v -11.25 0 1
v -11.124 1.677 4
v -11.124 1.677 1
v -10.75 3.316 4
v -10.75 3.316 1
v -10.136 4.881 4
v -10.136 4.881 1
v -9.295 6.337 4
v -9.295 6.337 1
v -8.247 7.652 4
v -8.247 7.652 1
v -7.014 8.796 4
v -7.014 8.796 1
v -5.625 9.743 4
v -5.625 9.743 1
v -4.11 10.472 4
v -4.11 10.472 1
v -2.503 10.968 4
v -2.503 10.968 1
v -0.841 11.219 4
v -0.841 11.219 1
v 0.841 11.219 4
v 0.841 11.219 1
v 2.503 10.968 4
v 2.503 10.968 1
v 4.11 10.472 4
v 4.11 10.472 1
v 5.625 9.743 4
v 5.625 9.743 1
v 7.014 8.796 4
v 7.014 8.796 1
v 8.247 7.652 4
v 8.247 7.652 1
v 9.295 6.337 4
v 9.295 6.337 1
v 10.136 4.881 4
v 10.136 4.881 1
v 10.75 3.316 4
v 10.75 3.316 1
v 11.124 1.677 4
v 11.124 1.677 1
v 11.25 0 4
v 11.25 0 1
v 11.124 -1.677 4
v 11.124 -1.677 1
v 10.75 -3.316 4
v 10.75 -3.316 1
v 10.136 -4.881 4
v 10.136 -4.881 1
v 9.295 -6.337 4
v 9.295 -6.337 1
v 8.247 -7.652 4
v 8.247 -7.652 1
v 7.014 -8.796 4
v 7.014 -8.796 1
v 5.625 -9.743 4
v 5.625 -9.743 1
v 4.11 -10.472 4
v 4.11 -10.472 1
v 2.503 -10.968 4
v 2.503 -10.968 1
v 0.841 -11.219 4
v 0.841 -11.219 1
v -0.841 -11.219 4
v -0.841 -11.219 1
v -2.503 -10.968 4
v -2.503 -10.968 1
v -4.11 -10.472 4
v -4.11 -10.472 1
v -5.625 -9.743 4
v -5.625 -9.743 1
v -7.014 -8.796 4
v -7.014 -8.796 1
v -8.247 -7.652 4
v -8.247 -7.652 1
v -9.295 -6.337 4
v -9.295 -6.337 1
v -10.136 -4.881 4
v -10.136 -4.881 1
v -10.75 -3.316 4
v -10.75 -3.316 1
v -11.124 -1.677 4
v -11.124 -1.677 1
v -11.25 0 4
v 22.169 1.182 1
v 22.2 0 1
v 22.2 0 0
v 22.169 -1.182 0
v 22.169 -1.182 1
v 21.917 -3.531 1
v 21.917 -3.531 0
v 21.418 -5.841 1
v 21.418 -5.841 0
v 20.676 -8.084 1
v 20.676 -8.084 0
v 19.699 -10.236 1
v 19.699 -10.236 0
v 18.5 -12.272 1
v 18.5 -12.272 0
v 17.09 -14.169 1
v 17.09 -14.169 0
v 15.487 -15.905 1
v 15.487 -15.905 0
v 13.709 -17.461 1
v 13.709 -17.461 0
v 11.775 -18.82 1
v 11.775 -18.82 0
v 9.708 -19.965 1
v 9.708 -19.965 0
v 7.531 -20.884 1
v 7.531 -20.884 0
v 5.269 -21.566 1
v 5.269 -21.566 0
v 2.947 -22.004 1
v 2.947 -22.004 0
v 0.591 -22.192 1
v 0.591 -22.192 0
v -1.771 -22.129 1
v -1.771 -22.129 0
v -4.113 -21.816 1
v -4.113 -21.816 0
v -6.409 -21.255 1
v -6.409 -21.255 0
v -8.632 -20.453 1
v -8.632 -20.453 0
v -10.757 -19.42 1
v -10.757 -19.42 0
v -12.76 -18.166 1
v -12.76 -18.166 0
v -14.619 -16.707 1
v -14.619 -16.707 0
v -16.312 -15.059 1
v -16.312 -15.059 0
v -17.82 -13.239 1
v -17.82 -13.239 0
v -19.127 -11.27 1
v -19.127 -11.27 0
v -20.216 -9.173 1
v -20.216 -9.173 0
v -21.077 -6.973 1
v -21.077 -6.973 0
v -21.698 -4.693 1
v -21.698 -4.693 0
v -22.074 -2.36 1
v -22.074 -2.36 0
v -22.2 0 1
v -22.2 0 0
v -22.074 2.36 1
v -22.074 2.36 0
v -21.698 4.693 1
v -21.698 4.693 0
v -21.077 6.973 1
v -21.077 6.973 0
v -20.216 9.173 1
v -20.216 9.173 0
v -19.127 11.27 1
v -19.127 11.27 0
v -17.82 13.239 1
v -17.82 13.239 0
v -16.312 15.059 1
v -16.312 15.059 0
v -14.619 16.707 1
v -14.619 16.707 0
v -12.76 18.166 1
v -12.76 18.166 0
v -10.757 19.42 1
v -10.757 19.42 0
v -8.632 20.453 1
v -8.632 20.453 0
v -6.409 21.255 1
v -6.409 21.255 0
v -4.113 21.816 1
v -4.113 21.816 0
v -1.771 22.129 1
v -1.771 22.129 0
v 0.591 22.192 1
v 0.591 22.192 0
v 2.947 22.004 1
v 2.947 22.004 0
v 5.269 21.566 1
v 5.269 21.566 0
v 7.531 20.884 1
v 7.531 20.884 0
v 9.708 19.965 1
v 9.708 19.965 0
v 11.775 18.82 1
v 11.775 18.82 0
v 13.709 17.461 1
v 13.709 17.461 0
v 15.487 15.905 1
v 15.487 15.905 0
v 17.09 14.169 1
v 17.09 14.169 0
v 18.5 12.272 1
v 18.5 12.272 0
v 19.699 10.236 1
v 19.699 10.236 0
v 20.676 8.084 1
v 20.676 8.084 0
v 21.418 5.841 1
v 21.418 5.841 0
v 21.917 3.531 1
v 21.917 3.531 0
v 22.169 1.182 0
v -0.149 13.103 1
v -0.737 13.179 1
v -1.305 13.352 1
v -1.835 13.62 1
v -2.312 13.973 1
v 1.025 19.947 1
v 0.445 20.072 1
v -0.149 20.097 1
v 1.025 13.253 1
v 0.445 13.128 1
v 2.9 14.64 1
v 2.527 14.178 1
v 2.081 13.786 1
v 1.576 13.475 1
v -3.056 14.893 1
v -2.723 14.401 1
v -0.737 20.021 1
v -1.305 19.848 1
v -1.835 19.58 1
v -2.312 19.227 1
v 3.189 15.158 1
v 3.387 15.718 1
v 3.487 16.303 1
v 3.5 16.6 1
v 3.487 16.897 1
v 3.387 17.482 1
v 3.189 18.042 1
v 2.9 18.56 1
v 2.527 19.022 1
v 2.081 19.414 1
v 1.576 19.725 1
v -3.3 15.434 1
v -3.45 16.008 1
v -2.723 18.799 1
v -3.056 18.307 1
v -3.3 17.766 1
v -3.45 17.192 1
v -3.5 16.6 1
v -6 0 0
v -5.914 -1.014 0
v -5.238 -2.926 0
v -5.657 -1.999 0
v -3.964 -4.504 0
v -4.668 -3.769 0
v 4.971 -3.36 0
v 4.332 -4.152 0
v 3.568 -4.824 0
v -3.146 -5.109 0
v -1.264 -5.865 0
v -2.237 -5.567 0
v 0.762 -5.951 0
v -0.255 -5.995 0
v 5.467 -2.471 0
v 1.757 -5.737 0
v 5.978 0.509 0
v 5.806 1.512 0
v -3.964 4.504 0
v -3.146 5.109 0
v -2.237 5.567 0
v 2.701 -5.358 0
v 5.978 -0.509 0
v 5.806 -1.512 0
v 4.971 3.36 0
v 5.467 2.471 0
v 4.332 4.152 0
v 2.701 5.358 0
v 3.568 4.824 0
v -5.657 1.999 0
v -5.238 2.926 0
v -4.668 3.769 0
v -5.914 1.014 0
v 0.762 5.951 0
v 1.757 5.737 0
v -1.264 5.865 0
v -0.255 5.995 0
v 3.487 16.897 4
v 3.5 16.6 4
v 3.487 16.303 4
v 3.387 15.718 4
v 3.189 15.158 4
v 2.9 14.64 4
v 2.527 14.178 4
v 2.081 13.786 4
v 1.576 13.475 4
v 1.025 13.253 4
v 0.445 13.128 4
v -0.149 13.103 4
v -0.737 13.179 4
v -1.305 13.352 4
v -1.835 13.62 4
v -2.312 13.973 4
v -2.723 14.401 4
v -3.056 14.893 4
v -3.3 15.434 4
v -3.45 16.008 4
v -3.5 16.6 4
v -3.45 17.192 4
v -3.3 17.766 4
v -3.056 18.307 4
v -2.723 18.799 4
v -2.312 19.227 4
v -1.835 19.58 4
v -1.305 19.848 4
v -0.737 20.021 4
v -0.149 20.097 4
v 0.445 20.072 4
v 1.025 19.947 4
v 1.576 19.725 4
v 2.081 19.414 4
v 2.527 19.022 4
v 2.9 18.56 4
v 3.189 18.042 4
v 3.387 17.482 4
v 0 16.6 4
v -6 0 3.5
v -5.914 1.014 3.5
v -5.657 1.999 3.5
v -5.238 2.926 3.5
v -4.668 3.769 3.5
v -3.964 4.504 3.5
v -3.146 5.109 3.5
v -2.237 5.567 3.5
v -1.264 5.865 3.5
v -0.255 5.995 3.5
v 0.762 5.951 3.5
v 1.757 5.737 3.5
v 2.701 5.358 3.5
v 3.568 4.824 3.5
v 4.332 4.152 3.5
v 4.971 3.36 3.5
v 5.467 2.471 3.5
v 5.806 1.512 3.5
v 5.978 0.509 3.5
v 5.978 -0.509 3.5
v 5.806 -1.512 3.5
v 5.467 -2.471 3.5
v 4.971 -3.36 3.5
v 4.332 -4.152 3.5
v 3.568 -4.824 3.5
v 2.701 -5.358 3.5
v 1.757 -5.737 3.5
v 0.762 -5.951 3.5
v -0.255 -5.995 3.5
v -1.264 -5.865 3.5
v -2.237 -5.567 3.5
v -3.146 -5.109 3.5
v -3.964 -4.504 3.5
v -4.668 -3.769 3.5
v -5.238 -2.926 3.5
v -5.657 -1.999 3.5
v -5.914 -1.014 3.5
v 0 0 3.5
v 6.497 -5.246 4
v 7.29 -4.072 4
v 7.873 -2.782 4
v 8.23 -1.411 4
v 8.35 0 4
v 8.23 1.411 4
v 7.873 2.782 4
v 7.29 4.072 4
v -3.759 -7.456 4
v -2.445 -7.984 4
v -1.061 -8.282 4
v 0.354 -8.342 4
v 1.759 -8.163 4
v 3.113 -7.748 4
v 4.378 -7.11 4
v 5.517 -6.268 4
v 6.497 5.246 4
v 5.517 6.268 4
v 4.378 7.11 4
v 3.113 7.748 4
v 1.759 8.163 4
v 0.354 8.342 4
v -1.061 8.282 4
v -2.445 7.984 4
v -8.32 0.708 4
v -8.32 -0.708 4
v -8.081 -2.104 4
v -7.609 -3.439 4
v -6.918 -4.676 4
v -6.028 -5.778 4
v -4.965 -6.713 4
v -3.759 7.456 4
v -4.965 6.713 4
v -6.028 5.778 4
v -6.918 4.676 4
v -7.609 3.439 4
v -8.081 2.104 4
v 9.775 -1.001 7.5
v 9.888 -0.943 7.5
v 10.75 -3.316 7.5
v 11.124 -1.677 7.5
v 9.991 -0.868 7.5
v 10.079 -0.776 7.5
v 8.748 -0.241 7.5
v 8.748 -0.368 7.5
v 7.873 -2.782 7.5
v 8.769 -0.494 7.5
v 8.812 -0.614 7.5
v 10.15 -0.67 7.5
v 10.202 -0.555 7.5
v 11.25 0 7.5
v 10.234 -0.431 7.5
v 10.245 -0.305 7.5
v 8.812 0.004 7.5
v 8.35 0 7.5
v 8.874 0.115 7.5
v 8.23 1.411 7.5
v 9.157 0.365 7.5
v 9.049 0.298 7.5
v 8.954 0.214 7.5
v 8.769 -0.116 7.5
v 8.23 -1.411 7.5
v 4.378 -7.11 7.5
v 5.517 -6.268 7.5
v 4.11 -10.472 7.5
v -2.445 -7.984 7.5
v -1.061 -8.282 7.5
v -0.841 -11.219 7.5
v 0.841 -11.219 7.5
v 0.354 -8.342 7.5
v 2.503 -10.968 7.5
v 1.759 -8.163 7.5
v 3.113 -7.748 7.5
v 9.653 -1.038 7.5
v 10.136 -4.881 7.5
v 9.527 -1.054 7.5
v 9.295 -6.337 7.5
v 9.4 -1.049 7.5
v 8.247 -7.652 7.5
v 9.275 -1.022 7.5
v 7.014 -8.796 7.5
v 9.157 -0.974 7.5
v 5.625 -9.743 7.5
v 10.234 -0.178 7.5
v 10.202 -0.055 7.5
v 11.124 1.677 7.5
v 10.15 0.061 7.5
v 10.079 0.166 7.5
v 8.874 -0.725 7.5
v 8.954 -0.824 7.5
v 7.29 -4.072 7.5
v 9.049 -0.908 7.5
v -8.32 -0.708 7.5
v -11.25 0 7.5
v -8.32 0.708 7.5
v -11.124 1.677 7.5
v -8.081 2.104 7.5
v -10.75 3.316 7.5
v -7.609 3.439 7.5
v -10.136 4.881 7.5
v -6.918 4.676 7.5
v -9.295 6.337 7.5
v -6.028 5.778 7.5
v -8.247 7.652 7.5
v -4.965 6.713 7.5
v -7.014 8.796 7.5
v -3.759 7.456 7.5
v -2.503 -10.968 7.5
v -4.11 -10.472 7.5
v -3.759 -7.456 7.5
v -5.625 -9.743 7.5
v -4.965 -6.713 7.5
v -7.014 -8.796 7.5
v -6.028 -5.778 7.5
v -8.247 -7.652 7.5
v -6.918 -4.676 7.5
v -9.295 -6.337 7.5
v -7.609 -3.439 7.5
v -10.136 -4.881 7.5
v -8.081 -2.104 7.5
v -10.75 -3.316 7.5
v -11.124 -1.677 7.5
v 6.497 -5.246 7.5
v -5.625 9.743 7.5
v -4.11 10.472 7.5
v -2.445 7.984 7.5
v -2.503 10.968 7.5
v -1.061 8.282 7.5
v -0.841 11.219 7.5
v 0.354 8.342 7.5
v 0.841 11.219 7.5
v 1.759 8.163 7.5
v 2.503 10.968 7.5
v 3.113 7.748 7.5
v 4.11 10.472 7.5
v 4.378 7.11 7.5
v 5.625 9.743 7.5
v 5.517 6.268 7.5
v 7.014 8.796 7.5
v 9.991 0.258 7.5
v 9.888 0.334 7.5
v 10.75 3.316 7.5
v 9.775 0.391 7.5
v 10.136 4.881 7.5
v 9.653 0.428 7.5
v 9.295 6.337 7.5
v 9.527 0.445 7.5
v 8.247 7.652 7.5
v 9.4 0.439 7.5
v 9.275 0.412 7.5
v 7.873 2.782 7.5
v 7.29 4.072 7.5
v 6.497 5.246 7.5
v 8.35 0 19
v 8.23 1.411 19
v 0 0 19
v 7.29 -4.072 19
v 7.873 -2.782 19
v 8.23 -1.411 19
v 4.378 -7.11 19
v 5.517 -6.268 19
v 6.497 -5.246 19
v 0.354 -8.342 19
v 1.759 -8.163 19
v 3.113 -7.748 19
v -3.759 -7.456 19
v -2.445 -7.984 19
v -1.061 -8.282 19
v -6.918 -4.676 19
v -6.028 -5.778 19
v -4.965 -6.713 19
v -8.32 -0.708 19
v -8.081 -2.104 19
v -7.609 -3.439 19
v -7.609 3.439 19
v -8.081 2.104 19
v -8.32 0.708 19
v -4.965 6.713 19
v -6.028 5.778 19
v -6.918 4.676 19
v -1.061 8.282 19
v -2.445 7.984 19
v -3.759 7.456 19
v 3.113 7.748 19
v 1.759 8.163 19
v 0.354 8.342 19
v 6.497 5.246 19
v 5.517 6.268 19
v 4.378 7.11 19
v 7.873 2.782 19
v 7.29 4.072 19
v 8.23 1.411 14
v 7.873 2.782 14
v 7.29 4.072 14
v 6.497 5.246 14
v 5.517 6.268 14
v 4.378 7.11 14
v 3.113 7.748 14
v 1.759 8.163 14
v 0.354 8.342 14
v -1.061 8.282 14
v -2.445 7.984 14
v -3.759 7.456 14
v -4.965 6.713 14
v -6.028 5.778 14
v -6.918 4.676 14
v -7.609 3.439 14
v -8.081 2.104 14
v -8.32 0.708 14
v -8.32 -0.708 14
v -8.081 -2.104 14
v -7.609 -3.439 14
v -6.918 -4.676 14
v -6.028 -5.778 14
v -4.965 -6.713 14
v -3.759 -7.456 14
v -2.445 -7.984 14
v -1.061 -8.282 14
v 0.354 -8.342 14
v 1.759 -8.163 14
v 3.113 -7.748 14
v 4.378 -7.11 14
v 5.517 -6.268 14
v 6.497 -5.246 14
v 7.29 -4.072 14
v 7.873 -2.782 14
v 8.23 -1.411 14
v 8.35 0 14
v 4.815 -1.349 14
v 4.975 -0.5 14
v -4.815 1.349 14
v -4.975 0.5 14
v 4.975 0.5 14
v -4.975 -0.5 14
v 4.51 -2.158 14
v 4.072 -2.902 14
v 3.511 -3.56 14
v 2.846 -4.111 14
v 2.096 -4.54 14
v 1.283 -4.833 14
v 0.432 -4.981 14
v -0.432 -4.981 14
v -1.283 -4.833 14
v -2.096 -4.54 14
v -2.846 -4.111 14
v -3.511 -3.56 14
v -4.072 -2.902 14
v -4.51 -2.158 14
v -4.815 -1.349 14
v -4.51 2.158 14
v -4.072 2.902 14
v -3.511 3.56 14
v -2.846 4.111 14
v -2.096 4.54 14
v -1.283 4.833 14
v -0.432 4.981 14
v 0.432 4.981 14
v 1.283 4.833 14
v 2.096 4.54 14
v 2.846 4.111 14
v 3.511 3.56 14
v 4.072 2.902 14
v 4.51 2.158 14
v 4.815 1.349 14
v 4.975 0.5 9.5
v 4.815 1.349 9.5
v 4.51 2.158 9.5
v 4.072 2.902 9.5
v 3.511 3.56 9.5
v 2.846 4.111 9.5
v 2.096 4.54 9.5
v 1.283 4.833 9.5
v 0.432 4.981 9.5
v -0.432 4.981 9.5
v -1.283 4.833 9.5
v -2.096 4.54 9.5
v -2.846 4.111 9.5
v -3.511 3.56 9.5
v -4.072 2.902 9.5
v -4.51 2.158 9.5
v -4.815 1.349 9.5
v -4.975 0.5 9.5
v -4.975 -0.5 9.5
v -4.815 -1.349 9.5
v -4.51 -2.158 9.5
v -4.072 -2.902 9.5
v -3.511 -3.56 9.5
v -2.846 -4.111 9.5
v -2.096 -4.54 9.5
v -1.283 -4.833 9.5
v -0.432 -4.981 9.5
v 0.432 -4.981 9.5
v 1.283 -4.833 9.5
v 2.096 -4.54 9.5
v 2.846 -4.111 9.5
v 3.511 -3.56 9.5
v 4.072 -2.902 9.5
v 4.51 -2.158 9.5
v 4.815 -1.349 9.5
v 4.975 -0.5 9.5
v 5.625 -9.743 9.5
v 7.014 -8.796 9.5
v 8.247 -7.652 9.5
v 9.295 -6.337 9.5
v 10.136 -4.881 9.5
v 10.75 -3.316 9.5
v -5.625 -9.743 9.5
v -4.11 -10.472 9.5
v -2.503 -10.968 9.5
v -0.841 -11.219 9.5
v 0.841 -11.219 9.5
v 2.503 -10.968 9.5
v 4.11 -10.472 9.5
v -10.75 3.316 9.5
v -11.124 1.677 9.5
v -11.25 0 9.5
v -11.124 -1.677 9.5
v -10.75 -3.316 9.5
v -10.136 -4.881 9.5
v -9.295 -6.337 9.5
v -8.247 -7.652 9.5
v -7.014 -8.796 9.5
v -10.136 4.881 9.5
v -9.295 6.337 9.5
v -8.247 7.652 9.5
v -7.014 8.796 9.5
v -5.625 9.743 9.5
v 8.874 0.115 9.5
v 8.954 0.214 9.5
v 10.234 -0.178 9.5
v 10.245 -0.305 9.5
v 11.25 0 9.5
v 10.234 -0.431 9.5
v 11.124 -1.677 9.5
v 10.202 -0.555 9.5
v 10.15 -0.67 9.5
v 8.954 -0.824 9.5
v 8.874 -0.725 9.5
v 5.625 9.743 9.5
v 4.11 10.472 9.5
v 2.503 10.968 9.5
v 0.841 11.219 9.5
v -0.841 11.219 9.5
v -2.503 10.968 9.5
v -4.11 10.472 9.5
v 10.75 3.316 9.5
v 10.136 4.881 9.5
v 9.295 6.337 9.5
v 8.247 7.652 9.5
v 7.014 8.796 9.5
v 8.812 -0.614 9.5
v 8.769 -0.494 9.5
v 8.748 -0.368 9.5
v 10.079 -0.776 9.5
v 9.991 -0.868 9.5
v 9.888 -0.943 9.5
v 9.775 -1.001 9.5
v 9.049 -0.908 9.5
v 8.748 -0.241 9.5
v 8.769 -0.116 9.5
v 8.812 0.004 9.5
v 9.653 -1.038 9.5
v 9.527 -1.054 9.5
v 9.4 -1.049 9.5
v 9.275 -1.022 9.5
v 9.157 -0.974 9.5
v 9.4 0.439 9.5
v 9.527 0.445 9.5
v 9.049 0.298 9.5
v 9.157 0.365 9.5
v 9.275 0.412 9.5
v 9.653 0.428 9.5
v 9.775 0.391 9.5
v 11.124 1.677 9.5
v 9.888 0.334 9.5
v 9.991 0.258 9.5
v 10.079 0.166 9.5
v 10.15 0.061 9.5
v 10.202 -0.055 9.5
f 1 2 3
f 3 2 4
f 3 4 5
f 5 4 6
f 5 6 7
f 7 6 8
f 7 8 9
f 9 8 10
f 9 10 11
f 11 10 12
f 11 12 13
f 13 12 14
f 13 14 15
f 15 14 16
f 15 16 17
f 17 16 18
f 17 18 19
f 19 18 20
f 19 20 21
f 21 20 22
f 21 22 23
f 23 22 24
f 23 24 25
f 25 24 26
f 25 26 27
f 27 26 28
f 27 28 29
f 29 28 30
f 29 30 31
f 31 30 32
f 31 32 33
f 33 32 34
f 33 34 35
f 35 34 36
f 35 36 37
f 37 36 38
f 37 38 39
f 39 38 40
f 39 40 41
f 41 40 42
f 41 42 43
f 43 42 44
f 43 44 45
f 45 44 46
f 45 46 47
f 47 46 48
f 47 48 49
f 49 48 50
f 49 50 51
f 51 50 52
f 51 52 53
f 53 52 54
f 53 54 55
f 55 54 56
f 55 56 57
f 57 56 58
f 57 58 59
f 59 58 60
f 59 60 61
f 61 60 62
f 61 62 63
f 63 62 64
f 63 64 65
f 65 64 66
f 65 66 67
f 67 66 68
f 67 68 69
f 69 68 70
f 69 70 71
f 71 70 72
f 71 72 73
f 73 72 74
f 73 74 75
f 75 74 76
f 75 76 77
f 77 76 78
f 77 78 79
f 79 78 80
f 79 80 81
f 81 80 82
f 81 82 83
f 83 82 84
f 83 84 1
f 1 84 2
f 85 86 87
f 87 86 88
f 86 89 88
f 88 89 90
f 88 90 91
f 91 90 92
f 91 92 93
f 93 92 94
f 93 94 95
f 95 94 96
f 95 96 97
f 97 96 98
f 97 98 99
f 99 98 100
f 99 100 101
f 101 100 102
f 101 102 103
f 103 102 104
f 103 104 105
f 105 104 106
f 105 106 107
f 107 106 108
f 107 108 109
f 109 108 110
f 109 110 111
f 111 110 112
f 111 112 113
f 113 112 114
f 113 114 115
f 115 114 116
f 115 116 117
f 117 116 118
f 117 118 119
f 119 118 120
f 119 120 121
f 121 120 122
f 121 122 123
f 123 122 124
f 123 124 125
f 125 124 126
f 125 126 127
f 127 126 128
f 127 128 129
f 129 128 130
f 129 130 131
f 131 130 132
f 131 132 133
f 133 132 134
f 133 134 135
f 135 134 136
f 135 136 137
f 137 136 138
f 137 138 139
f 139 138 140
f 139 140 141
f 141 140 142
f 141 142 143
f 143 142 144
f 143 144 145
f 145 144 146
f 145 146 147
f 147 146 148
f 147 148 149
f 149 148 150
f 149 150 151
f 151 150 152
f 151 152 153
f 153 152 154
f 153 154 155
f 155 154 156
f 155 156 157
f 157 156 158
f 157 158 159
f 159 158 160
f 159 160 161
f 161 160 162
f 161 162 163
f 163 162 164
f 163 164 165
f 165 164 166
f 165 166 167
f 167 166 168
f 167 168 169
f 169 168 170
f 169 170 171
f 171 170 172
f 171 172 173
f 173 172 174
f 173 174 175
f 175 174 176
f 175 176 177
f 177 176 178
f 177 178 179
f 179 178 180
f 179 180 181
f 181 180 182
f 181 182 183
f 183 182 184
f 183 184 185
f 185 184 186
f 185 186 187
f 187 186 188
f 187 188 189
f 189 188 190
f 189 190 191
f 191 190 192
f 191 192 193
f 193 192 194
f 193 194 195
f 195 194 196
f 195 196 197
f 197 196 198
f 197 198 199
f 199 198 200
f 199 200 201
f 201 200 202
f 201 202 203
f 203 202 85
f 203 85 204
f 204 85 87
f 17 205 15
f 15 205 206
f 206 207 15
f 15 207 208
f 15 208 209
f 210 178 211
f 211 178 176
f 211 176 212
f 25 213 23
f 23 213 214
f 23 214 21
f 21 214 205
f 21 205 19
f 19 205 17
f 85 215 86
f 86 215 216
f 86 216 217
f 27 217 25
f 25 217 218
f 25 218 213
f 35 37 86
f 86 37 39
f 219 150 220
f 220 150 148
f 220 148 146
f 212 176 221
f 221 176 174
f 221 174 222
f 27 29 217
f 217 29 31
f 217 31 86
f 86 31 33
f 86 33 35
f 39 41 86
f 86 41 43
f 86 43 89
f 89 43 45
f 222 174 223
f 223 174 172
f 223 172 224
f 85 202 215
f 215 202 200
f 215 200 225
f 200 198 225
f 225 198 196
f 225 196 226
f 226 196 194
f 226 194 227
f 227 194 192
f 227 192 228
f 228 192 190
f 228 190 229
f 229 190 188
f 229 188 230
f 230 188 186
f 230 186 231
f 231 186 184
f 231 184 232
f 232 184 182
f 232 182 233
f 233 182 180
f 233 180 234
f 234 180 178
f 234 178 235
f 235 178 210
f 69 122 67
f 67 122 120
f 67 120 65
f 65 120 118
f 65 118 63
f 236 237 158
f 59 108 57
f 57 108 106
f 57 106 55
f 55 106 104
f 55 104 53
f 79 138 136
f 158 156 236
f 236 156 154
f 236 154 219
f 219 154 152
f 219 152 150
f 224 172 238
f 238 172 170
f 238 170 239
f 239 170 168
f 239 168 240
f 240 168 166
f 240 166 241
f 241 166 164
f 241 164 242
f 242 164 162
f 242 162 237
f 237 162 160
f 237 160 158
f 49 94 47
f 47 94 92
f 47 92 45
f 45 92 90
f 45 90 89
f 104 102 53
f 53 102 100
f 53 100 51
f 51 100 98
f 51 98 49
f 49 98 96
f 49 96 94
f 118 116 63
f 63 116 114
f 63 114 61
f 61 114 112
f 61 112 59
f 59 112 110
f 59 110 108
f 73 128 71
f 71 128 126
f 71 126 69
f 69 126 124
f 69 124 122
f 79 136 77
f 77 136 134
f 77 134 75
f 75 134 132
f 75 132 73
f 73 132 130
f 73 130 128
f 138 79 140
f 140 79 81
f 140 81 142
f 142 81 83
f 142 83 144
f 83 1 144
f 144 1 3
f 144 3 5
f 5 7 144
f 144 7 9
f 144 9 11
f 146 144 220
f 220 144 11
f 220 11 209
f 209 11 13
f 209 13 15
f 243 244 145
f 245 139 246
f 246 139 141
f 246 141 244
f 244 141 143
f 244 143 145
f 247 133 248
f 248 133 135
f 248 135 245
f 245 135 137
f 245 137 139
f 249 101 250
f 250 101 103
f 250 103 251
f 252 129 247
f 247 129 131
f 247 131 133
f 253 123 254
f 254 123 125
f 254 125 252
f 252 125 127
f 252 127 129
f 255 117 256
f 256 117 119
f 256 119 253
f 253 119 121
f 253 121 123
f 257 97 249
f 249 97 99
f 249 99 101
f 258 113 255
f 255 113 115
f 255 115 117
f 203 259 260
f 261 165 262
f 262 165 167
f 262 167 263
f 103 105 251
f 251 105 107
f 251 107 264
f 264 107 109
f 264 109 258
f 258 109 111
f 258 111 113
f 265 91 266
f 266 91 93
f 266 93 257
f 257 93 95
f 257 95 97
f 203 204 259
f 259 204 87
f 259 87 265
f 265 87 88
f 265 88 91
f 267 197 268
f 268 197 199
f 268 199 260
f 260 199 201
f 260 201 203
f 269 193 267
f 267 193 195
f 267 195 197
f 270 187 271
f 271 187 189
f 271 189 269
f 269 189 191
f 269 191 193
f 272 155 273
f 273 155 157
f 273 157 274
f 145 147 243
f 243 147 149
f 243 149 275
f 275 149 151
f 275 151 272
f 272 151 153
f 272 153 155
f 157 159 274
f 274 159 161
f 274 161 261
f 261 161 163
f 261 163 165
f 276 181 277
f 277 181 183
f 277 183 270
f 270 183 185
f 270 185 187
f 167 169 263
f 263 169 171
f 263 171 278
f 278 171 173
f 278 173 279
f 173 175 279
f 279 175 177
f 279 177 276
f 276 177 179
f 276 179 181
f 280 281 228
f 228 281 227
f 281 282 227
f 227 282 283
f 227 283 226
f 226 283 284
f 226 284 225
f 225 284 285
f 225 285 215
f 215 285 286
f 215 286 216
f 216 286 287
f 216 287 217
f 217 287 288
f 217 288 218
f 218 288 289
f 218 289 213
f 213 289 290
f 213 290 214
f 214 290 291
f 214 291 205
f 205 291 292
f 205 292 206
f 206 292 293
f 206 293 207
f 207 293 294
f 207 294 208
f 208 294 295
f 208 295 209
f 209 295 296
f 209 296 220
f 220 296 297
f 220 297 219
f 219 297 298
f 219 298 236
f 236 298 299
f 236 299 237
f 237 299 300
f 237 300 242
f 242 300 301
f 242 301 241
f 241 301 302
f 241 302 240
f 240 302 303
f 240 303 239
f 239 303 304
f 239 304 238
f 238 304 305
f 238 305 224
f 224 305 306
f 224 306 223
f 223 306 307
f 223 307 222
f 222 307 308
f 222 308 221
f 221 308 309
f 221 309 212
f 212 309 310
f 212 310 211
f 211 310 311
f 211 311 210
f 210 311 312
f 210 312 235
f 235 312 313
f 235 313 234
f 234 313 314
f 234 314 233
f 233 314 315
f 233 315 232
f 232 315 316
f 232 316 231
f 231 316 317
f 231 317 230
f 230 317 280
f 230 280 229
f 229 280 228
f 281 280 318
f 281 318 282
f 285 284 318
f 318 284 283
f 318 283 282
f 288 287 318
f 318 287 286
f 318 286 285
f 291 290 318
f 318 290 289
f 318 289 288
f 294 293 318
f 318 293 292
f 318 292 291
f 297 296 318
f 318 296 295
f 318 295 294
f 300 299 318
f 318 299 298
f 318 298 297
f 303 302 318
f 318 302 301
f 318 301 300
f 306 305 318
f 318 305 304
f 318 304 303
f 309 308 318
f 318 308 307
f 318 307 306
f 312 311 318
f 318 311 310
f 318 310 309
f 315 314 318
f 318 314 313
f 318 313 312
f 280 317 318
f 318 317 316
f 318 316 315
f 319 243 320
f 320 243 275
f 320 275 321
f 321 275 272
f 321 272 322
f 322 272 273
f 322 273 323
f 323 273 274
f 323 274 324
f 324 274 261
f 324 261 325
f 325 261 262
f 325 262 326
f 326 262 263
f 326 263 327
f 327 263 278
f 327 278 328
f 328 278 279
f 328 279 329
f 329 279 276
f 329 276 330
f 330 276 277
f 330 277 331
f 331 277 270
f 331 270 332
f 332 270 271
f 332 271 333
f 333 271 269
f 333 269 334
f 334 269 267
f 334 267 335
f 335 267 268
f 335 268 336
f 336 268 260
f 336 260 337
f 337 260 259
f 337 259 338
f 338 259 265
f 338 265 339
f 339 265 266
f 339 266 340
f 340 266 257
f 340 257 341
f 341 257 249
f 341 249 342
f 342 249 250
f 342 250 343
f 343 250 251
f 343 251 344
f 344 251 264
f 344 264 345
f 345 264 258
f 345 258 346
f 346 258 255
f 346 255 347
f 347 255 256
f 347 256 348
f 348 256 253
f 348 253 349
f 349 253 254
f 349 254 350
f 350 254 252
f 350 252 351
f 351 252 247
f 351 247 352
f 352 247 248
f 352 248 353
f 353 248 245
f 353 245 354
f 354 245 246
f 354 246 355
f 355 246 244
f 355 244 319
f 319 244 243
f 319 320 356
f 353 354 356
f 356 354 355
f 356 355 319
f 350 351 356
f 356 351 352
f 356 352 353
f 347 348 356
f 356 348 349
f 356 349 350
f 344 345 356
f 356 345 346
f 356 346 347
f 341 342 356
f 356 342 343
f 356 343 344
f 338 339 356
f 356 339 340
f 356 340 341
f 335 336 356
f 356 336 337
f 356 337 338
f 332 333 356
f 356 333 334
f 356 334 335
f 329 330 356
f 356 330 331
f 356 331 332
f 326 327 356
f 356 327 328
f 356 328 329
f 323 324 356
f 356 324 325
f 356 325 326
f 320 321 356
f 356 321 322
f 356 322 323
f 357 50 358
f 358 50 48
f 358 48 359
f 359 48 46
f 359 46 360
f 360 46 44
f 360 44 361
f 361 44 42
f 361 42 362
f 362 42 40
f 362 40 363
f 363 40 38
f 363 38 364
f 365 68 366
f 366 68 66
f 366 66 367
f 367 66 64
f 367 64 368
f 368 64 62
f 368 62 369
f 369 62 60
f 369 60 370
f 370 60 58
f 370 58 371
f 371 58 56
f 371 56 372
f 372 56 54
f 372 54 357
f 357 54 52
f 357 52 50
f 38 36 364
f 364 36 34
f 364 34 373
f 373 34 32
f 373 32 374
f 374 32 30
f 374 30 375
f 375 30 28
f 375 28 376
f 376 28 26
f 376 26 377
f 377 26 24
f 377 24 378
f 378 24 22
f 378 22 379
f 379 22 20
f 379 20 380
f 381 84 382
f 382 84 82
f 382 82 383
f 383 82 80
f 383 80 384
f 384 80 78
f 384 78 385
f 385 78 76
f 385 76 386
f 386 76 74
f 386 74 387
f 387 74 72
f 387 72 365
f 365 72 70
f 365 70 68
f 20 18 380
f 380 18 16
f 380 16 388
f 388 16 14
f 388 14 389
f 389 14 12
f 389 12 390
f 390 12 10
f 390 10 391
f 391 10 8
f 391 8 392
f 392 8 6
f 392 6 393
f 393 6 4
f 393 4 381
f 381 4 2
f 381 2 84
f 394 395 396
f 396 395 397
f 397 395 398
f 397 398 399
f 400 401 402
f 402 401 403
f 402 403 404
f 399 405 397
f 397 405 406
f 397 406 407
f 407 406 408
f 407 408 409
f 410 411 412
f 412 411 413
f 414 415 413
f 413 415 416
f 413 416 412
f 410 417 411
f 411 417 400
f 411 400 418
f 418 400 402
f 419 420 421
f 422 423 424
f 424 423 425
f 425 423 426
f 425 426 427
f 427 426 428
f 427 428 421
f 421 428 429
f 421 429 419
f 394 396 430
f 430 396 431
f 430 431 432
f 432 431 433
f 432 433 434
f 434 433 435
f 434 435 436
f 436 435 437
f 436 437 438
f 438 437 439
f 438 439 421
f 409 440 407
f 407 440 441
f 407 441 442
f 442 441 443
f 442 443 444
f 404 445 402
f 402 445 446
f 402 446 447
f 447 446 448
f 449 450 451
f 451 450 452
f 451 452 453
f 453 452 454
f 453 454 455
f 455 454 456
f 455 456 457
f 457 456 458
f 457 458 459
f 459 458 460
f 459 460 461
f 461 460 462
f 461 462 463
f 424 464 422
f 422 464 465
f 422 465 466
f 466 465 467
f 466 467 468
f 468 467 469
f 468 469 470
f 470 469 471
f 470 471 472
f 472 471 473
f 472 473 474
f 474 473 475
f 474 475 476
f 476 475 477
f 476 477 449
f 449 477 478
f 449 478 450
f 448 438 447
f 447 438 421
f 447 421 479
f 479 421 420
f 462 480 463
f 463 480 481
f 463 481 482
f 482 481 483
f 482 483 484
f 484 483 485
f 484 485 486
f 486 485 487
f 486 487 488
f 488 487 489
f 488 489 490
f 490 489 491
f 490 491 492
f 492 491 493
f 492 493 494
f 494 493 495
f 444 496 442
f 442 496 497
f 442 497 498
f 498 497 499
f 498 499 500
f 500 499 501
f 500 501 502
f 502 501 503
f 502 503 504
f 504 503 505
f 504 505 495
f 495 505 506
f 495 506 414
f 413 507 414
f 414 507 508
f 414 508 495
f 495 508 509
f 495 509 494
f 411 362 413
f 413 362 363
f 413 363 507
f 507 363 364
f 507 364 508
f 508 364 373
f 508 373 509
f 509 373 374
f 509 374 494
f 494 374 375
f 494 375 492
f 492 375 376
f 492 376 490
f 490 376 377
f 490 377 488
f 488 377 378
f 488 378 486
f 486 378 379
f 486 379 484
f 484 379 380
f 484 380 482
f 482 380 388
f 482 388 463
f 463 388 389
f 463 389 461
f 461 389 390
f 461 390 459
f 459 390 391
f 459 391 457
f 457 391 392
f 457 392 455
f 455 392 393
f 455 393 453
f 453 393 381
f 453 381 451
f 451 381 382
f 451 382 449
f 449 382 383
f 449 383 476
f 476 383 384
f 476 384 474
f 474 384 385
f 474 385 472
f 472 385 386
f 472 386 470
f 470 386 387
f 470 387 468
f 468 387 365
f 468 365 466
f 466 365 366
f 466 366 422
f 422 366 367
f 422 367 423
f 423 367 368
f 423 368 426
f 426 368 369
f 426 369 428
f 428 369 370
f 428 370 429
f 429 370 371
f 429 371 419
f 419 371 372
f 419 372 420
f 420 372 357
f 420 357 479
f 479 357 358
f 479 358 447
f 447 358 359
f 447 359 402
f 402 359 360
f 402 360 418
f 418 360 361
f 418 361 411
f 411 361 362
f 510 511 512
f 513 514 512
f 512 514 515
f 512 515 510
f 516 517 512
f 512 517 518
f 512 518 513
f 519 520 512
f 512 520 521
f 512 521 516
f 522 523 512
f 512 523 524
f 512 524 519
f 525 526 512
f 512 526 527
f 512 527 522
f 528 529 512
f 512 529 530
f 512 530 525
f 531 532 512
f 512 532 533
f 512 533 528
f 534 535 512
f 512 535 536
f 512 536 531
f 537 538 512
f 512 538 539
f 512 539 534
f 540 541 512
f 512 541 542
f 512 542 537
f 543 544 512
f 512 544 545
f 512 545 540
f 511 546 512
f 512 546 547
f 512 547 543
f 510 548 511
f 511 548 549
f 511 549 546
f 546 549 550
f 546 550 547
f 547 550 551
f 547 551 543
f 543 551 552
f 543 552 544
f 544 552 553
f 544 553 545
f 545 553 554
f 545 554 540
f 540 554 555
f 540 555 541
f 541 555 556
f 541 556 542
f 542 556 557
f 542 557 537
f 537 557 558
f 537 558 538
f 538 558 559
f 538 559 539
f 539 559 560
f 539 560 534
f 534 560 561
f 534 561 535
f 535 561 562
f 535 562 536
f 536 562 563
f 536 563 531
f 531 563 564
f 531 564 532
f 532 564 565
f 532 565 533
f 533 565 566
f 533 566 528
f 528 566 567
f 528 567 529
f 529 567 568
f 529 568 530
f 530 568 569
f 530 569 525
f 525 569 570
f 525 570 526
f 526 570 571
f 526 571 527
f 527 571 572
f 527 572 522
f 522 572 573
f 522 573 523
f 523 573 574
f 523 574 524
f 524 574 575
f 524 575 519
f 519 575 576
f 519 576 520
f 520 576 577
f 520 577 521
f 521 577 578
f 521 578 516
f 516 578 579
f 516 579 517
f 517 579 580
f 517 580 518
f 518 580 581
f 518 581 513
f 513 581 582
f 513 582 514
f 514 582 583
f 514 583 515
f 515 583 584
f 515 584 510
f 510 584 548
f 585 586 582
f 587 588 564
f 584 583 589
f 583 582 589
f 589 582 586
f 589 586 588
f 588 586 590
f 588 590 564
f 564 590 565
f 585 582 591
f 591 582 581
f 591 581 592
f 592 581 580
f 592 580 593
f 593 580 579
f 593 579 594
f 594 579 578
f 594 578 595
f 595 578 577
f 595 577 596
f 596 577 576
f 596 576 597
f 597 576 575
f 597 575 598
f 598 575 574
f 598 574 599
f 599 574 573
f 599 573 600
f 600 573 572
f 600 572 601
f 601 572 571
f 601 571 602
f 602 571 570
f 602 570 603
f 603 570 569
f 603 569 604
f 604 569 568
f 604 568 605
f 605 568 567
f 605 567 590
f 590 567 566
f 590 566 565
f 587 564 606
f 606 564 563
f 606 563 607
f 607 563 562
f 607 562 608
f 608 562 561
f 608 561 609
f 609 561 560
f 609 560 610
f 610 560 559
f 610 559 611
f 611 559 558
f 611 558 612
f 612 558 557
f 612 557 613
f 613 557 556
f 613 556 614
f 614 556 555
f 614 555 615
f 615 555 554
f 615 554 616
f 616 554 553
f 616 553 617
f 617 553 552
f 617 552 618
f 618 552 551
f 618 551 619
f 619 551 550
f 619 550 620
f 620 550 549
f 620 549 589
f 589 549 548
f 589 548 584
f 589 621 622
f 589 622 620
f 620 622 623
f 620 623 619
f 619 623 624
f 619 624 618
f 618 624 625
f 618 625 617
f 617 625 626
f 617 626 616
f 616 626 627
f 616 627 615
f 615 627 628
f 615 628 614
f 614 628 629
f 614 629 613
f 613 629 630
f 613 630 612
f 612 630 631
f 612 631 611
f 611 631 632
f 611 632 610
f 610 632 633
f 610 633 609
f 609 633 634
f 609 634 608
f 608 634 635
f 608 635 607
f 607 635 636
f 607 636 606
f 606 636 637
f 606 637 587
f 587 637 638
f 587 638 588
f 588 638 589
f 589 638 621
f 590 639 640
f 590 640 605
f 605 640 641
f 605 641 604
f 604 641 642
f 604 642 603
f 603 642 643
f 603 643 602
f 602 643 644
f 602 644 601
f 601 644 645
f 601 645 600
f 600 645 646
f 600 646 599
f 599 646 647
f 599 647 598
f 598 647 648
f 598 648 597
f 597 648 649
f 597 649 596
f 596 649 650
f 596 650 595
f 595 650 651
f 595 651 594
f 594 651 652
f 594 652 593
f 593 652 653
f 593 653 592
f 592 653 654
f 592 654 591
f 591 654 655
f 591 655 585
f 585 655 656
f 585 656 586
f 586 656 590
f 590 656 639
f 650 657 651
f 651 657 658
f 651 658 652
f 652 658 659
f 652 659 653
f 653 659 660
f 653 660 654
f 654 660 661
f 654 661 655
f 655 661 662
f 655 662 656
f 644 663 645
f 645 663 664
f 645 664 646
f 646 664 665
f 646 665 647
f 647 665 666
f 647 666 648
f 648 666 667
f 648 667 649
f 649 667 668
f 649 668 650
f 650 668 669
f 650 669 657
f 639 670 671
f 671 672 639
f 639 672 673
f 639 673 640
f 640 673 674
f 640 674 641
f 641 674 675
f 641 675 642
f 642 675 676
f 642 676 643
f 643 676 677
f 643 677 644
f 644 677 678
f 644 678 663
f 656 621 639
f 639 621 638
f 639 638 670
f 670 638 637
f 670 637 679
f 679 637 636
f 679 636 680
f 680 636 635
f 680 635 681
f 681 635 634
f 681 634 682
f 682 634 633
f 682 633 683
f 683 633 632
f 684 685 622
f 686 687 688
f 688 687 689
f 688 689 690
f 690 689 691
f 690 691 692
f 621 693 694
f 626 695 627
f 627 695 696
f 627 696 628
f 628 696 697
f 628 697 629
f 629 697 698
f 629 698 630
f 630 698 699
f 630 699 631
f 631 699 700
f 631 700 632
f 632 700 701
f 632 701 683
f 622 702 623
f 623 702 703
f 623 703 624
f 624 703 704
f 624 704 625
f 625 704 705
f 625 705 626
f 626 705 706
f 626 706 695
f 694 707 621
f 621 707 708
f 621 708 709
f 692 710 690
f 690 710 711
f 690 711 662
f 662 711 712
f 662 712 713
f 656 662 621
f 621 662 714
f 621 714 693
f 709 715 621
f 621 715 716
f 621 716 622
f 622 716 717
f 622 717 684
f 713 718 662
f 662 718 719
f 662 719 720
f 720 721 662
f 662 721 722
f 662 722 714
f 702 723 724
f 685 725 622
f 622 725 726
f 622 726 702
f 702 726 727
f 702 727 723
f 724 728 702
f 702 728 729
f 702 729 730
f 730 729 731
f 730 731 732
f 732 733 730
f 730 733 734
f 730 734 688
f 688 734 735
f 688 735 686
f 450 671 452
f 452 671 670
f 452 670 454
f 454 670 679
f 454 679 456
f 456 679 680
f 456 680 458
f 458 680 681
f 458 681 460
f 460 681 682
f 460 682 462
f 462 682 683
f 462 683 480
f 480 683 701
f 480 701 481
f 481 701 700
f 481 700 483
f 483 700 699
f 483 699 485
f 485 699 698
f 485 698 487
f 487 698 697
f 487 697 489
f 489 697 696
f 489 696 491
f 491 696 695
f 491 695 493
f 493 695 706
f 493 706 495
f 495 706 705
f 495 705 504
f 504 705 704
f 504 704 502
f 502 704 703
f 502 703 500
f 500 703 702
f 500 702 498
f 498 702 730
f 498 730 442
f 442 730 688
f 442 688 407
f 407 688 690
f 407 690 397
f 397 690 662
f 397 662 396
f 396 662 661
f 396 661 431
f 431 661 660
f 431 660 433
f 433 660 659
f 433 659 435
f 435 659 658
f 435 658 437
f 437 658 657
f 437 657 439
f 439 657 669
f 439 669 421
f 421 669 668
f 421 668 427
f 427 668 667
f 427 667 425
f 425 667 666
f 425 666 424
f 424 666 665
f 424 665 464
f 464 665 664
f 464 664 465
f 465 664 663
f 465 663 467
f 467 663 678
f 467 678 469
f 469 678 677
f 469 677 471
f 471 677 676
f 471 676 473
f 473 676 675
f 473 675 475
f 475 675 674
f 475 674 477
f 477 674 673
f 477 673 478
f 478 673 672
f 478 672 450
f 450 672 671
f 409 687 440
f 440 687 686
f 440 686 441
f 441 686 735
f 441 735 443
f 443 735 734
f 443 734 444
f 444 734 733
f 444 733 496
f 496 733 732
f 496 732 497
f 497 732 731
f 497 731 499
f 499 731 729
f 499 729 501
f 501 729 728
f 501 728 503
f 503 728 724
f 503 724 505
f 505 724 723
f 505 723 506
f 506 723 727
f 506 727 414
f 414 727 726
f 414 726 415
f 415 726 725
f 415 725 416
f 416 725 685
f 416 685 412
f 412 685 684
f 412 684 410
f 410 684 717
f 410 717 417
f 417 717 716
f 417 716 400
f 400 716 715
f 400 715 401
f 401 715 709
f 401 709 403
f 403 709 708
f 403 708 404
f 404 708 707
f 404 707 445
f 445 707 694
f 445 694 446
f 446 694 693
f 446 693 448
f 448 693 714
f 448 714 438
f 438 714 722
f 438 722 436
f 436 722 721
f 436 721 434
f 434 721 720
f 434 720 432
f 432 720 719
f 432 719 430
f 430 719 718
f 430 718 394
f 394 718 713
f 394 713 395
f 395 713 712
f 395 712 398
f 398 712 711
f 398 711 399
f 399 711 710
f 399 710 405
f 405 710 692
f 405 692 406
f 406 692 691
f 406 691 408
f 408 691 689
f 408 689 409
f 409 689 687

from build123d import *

# Parameters (mm, degrees)
SKETCH1_R           = 22.2
BOSS_EXTRUDE1_DEPTH = 1
BOSS_EXTRUDE2_START = 1
SKETCH2_R           = 11.25
BOSS_EXTRUDE2_DEPTH = 8.5
BOSS_EXTRUDE3_START = 9.5
SKETCH3_R           = 5
BOSS_EXTRUDE3_DEPTH = 9.5
CUT_EXTRUDE1_START  = 19
SKETCH4_W           = 11.621745696
SKETCH4_H           = 1
CUT_EXTRUDE1_DEPTH  = 9.5
BOSS_EXTRUDE4_START = 1
SKETCH5_R           = 3.5
BOSS_EXTRUDE4_DEPTH = 3
SKETCH6_R           = 6
CUT_EXTRUDE2_DEPTH  = 3.5
SKETCH9_R           = 8.35
BOSS_EXTRUDE5_DEPTH = 5
CUT_EXTRUDE7_START  = -2
SKETCH10_R          = 11.25
SKETCH10_R_2        = 8.35
CUT_EXTRUDE7_DEPTH  = 3.5
SKETCH11_R          = 0.75
CUT_EXTRUDE8_DEPTH  = 3


with BuildPart() as part:
    # Sketch1 → Boss-Extrude1 (new body)
    with BuildSketch(Plane.XY):
        Circle(SKETCH1_R)
    extrude(amount=BOSS_EXTRUDE1_DEPTH)

    # Sketch2 → Boss-Extrude2 (add)
    with BuildSketch(Plane.XY.offset(BOSS_EXTRUDE2_START)):
        Circle(SKETCH2_R)
    extrude(amount=BOSS_EXTRUDE2_DEPTH)

    # Sketch3 → Boss-Extrude3 (add)
    with BuildSketch(Plane.XY.offset(BOSS_EXTRUDE3_START)):
        Circle(SKETCH3_R)
    extrude(amount=BOSS_EXTRUDE3_DEPTH)

    # Sketch4 → Cut-Extrude1 (cut)
    with BuildSketch(Plane.XY.offset(CUT_EXTRUDE1_START)):
        Rectangle(SKETCH4_W, SKETCH4_H)
    extrude(amount=-CUT_EXTRUDE1_DEPTH, mode=Mode.SUBTRACT)

    # Sketch5 → Boss-Extrude4 (add)
    with BuildSketch(Plane.XY.offset(BOSS_EXTRUDE4_START)):
        with Locations((0, 16.6)):
            Circle(SKETCH5_R)
    extrude(amount=BOSS_EXTRUDE4_DEPTH)

    # Sketch6 → Cut-Extrude2 (cut)
    with BuildSketch(Plane(origin=(0, 0, 0), x_dir=(-1, 0, 0), z_dir=(0, 0, -1))):
        Circle(SKETCH6_R)
    extrude(amount=-CUT_EXTRUDE2_DEPTH, mode=Mode.SUBTRACT)

    # Sketch9 → Boss-Extrude5 (add)
    with BuildSketch(Plane.XY.offset(19)):
        Circle(SKETCH9_R)
    extrude(amount=-BOSS_EXTRUDE5_DEPTH)

    # Sketch10 → Cut-Extrude7 (cut)
    with BuildSketch(Plane.XY.offset(9.5).offset(CUT_EXTRUDE7_START)):
        Circle(SKETCH10_R)
        Circle(SKETCH10_R_2, mode=Mode.SUBTRACT)
    extrude(amount=-CUT_EXTRUDE7_DEPTH, mode=Mode.SUBTRACT)

    # Sketch11 → Cut-Extrude8 (cut)
    with BuildSketch(Plane.XY.offset(9.5)):
        with Locations((9.495112761, -0.304686158)):
            Circle(SKETCH11_R)
    extrude(amount=-CUT_EXTRUDE8_DEPTH, mode=Mode.SUBTRACT)


solid = part.part
